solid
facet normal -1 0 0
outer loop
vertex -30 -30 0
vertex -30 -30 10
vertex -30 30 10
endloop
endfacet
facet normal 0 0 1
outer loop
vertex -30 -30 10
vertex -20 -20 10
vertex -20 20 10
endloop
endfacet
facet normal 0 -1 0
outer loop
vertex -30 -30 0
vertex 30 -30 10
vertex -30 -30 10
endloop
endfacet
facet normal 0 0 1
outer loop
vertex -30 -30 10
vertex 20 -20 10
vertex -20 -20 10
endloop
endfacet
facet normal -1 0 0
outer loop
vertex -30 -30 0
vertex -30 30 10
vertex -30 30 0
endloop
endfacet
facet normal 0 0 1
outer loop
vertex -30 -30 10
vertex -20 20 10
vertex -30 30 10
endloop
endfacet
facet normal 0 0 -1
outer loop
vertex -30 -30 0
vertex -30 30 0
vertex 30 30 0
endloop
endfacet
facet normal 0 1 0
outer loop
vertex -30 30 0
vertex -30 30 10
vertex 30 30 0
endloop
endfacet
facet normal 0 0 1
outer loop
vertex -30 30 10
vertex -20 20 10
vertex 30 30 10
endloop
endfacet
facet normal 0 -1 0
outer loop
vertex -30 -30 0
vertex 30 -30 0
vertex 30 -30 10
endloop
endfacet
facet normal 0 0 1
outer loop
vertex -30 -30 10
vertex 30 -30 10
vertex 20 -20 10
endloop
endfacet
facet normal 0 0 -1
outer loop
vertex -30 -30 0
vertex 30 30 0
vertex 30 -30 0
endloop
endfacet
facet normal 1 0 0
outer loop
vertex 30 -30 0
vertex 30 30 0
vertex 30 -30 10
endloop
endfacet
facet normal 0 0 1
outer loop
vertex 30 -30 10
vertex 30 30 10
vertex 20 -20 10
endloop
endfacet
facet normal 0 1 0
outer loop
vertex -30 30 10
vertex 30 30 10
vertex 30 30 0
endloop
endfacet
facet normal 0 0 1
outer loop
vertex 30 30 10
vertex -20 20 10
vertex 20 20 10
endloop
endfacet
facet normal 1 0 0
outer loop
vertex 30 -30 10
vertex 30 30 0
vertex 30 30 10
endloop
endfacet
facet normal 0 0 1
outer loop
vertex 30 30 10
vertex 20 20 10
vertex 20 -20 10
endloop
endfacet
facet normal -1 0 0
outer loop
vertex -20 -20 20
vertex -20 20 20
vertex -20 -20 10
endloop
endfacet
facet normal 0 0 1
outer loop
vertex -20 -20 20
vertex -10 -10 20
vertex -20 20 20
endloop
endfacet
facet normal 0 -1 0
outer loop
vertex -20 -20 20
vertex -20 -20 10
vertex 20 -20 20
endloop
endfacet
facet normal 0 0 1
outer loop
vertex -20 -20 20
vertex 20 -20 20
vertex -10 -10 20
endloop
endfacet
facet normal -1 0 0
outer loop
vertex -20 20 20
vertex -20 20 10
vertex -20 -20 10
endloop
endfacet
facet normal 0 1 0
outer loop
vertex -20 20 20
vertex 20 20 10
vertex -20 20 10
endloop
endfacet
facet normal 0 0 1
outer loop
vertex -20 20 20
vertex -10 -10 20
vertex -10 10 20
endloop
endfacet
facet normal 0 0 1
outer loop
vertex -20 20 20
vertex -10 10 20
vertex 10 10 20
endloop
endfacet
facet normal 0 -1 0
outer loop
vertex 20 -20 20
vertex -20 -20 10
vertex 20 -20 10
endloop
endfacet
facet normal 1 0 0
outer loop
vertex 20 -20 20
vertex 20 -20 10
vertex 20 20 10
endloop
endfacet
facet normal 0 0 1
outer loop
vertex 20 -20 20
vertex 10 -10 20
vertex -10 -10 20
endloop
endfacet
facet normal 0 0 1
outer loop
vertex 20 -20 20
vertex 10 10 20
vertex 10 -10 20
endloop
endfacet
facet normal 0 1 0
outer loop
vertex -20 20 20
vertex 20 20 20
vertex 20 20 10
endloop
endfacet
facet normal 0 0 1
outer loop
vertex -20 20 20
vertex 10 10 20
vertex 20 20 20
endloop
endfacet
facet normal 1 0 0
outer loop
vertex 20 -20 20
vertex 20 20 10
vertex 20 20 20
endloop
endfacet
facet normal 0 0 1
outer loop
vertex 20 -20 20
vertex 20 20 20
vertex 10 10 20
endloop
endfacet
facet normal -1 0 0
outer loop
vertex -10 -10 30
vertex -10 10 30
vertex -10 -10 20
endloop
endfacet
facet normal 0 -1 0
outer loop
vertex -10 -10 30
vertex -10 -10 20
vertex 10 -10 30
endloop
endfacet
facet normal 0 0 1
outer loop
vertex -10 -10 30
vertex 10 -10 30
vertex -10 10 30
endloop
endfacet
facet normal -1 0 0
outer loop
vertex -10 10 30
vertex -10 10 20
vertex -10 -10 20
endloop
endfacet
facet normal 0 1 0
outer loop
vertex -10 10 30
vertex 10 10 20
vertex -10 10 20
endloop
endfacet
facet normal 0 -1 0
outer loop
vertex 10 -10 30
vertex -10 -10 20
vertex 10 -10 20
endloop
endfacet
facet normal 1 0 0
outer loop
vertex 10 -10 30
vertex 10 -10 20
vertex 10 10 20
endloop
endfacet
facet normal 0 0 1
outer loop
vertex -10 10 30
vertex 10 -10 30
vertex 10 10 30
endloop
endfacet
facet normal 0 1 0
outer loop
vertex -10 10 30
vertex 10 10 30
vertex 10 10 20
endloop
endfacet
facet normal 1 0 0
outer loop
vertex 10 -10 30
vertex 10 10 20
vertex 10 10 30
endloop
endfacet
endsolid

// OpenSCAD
// 3段階の階段状ピラミッド
bottom_box = [60, 60, 10];
middle_box = [40, 40, 10];
top_box = [20, 20, 10];

union() {
  // 底段
  translate([-bottom_box[0]/2, -bottom_box[1]/2, 0])
    cube(bottom_box);
  // 中段
  translate([-middle_box[0]/2, -middle_box[1]/2, bottom_box[2]])
    cube(middle_box);
  // 上段
  translate([-top_box[0]/2, -top_box[1]/2, bottom_box[2] + middle_box[2]])
    cube(top_box);
}
